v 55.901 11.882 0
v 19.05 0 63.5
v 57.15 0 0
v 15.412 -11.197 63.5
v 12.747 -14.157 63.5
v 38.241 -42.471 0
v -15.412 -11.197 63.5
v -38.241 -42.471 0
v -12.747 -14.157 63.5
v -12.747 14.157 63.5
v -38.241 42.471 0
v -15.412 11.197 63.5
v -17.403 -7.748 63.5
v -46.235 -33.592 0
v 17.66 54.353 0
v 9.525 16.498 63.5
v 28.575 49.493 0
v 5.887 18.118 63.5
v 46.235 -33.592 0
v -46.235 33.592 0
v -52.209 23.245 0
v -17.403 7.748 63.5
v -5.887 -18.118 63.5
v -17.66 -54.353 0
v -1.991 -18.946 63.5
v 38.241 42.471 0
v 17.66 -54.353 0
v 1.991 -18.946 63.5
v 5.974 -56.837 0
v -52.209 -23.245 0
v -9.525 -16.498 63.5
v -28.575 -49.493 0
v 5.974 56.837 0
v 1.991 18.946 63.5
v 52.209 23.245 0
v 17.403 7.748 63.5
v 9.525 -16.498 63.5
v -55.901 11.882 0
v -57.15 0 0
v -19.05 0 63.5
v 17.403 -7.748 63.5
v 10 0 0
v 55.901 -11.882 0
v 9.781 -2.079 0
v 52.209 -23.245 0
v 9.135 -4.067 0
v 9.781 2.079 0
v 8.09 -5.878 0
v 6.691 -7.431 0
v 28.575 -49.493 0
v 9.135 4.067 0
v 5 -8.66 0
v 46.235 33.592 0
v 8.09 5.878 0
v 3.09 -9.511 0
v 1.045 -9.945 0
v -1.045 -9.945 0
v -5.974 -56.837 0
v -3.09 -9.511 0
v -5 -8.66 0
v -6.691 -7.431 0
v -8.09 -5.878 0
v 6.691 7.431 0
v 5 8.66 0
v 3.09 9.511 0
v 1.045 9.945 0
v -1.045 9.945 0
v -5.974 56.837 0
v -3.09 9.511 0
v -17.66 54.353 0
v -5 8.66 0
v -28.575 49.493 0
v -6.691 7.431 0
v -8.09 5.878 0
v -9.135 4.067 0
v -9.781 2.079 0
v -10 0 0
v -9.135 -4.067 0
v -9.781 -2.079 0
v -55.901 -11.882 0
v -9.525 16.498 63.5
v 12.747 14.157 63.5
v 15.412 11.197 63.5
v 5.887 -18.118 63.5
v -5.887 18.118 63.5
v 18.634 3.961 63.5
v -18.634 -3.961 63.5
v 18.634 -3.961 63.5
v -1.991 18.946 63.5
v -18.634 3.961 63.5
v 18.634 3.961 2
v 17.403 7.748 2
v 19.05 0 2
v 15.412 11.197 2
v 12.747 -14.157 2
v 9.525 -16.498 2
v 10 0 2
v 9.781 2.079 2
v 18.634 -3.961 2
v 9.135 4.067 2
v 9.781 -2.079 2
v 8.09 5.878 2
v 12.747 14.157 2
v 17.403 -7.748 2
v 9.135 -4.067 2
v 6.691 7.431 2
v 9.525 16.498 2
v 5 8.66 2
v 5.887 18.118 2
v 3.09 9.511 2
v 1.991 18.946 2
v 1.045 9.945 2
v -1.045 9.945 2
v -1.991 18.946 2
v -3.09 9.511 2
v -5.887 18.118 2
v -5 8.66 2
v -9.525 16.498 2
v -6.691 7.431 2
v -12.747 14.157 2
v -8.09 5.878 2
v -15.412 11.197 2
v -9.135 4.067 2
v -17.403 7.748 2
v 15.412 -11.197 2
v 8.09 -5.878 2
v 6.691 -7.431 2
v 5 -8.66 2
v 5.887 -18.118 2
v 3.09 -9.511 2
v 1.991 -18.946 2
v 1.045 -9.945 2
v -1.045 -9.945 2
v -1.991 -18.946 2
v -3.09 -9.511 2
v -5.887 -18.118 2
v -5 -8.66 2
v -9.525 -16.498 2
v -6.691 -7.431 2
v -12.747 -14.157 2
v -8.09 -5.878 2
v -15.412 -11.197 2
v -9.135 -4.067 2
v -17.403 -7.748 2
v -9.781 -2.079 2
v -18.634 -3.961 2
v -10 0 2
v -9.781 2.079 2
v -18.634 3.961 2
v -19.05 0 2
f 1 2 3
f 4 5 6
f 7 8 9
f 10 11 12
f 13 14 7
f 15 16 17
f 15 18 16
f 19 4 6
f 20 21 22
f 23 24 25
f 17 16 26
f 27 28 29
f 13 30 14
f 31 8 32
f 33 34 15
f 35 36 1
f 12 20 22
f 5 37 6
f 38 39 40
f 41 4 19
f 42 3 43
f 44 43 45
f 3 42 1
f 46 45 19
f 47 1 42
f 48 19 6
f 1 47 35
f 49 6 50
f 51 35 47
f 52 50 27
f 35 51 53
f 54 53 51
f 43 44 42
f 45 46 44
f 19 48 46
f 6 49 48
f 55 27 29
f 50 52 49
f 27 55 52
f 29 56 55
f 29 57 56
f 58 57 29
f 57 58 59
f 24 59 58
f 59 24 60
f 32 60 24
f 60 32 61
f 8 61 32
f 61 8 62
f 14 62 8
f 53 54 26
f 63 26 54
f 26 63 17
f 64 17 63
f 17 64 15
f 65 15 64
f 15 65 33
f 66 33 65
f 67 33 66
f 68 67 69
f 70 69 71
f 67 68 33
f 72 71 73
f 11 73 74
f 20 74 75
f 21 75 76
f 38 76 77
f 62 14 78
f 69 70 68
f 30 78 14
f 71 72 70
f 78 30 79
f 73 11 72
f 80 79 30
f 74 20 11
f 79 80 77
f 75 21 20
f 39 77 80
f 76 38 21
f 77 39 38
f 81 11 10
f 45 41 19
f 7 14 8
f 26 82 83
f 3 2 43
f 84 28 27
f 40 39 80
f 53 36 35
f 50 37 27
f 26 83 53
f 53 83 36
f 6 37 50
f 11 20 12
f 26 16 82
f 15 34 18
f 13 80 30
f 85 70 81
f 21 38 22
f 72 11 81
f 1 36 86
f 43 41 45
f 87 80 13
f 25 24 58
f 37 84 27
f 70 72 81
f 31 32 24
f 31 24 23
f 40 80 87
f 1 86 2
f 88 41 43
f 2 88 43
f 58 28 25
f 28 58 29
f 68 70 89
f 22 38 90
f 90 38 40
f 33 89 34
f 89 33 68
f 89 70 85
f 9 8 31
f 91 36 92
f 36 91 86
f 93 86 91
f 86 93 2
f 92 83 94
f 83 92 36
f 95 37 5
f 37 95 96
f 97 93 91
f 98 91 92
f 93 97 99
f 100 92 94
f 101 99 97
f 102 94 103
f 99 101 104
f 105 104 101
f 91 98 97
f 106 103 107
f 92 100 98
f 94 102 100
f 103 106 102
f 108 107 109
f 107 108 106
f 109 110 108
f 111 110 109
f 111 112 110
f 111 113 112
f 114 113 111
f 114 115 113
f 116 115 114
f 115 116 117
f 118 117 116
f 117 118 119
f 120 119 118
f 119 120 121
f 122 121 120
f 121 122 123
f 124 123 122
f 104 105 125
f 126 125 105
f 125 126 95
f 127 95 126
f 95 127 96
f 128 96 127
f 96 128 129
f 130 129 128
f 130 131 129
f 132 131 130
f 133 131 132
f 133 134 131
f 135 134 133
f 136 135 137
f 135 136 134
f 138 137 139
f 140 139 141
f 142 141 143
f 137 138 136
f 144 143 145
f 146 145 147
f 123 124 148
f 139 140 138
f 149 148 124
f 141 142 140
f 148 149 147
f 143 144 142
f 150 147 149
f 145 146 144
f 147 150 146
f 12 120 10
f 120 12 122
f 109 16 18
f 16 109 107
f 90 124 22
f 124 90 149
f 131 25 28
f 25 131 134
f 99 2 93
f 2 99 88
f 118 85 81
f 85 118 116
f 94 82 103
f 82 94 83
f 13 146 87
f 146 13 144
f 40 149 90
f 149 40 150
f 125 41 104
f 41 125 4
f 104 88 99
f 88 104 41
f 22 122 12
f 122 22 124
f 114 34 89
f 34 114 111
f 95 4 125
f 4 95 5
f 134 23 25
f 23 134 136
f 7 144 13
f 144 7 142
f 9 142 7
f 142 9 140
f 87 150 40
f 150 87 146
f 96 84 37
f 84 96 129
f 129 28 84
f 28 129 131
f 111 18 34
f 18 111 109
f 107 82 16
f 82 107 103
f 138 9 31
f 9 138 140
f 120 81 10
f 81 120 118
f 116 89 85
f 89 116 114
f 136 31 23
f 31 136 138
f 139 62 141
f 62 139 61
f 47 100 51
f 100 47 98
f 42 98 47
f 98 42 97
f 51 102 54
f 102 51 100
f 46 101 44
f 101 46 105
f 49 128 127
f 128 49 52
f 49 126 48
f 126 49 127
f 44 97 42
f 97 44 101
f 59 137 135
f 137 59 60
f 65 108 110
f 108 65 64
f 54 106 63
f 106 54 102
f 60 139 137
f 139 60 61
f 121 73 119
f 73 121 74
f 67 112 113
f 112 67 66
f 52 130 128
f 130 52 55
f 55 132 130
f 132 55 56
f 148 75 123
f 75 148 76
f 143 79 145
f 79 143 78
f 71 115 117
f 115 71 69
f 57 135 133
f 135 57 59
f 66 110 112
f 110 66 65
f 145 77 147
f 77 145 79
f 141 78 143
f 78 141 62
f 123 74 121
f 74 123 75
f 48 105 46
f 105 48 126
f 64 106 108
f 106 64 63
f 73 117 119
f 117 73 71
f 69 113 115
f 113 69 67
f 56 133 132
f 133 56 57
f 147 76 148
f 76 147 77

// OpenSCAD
function in_to_mm(in) = in * 25.4;

wall = 2;
rerr = 0.01;

hdepth = in_to_mm(2.5);
hwidth = in_to_mm(1.5);
hole_size = 10;

difference() {
  cylinder(hdepth, hwidth*1.5, hwidth/2);

  translate([0, 0, wall])
  cylinder(r=hwidth/2, h=hdepth);

  translate([0, 0, -rerr])
  cylinder(r=hole_size, h=wall+rerr*2);
}
